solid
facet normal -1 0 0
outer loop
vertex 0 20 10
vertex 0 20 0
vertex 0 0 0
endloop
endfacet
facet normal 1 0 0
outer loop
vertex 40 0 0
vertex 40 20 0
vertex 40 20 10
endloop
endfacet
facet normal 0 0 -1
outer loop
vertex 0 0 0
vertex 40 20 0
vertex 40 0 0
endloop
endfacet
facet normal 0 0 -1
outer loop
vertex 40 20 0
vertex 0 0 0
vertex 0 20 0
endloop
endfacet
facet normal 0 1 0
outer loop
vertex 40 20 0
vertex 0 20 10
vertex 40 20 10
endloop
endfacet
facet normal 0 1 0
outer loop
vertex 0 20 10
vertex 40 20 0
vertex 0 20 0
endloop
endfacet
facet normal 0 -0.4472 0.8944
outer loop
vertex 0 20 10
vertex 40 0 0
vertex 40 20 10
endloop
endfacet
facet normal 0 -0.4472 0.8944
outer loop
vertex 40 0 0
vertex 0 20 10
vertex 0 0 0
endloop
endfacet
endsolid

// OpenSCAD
   module prism(l, w, h){
       polyhedron(
               points=[[0,0,0], [l,0,0], [l,w,0], [0,w,0], [0,w,h], [l,w,h]],
               faces=[[0,1,2,3],[5,4,3,2],[0,4,5,1],[0,3,4],[5,2,1]]
               );
       
       
       }
       
   module preview(l, w, h) {
       // preview unfolded (do not include in your function
       z = 0.08;
       separation = 2;
       border = .2;
       translate([0,w+separation,0])
           cube([l,w,z]);
       translate([0,w+separation+w+border,0])
           cube([l,h,z]);
       translate([0,w+separation+w+border+h+border,0])
           cube([l,sqrt(w*w+h*h),z]);
       translate([l+border,w+separation+w+border+h+border,0])
           polyhedron(
                   points=[[0,0,0],[w,0,0],[0,sqrt(w*w+h*h),0], [0,0,z],[w,0,z],[0,sqrt(w*w+h*h),z]],
                   faces=[[0,1,2], [3,5,4], [0,3,4,1], [1,4,5,2], [2,5,3,0]]
                   );
       translate([0-border,w+separation+w+border+h+border,0])
           polyhedron(
                   points=[[0,0,0],[0-w,0,0],[0,sqrt(w*w+h*h),0], [0,0,z],[0-w,0,z],[0,sqrt(w*w+h*h),z]],
                   faces=[[1,0,2],[5,3,4],[0,1,4,3],[1,2,5,4],[2,0,3,5]]
                   );
   }
   
   l = 40;
   w = 20;
   h = 10;
   
   prism(l, w, h);
   //preview(l, w, h);
